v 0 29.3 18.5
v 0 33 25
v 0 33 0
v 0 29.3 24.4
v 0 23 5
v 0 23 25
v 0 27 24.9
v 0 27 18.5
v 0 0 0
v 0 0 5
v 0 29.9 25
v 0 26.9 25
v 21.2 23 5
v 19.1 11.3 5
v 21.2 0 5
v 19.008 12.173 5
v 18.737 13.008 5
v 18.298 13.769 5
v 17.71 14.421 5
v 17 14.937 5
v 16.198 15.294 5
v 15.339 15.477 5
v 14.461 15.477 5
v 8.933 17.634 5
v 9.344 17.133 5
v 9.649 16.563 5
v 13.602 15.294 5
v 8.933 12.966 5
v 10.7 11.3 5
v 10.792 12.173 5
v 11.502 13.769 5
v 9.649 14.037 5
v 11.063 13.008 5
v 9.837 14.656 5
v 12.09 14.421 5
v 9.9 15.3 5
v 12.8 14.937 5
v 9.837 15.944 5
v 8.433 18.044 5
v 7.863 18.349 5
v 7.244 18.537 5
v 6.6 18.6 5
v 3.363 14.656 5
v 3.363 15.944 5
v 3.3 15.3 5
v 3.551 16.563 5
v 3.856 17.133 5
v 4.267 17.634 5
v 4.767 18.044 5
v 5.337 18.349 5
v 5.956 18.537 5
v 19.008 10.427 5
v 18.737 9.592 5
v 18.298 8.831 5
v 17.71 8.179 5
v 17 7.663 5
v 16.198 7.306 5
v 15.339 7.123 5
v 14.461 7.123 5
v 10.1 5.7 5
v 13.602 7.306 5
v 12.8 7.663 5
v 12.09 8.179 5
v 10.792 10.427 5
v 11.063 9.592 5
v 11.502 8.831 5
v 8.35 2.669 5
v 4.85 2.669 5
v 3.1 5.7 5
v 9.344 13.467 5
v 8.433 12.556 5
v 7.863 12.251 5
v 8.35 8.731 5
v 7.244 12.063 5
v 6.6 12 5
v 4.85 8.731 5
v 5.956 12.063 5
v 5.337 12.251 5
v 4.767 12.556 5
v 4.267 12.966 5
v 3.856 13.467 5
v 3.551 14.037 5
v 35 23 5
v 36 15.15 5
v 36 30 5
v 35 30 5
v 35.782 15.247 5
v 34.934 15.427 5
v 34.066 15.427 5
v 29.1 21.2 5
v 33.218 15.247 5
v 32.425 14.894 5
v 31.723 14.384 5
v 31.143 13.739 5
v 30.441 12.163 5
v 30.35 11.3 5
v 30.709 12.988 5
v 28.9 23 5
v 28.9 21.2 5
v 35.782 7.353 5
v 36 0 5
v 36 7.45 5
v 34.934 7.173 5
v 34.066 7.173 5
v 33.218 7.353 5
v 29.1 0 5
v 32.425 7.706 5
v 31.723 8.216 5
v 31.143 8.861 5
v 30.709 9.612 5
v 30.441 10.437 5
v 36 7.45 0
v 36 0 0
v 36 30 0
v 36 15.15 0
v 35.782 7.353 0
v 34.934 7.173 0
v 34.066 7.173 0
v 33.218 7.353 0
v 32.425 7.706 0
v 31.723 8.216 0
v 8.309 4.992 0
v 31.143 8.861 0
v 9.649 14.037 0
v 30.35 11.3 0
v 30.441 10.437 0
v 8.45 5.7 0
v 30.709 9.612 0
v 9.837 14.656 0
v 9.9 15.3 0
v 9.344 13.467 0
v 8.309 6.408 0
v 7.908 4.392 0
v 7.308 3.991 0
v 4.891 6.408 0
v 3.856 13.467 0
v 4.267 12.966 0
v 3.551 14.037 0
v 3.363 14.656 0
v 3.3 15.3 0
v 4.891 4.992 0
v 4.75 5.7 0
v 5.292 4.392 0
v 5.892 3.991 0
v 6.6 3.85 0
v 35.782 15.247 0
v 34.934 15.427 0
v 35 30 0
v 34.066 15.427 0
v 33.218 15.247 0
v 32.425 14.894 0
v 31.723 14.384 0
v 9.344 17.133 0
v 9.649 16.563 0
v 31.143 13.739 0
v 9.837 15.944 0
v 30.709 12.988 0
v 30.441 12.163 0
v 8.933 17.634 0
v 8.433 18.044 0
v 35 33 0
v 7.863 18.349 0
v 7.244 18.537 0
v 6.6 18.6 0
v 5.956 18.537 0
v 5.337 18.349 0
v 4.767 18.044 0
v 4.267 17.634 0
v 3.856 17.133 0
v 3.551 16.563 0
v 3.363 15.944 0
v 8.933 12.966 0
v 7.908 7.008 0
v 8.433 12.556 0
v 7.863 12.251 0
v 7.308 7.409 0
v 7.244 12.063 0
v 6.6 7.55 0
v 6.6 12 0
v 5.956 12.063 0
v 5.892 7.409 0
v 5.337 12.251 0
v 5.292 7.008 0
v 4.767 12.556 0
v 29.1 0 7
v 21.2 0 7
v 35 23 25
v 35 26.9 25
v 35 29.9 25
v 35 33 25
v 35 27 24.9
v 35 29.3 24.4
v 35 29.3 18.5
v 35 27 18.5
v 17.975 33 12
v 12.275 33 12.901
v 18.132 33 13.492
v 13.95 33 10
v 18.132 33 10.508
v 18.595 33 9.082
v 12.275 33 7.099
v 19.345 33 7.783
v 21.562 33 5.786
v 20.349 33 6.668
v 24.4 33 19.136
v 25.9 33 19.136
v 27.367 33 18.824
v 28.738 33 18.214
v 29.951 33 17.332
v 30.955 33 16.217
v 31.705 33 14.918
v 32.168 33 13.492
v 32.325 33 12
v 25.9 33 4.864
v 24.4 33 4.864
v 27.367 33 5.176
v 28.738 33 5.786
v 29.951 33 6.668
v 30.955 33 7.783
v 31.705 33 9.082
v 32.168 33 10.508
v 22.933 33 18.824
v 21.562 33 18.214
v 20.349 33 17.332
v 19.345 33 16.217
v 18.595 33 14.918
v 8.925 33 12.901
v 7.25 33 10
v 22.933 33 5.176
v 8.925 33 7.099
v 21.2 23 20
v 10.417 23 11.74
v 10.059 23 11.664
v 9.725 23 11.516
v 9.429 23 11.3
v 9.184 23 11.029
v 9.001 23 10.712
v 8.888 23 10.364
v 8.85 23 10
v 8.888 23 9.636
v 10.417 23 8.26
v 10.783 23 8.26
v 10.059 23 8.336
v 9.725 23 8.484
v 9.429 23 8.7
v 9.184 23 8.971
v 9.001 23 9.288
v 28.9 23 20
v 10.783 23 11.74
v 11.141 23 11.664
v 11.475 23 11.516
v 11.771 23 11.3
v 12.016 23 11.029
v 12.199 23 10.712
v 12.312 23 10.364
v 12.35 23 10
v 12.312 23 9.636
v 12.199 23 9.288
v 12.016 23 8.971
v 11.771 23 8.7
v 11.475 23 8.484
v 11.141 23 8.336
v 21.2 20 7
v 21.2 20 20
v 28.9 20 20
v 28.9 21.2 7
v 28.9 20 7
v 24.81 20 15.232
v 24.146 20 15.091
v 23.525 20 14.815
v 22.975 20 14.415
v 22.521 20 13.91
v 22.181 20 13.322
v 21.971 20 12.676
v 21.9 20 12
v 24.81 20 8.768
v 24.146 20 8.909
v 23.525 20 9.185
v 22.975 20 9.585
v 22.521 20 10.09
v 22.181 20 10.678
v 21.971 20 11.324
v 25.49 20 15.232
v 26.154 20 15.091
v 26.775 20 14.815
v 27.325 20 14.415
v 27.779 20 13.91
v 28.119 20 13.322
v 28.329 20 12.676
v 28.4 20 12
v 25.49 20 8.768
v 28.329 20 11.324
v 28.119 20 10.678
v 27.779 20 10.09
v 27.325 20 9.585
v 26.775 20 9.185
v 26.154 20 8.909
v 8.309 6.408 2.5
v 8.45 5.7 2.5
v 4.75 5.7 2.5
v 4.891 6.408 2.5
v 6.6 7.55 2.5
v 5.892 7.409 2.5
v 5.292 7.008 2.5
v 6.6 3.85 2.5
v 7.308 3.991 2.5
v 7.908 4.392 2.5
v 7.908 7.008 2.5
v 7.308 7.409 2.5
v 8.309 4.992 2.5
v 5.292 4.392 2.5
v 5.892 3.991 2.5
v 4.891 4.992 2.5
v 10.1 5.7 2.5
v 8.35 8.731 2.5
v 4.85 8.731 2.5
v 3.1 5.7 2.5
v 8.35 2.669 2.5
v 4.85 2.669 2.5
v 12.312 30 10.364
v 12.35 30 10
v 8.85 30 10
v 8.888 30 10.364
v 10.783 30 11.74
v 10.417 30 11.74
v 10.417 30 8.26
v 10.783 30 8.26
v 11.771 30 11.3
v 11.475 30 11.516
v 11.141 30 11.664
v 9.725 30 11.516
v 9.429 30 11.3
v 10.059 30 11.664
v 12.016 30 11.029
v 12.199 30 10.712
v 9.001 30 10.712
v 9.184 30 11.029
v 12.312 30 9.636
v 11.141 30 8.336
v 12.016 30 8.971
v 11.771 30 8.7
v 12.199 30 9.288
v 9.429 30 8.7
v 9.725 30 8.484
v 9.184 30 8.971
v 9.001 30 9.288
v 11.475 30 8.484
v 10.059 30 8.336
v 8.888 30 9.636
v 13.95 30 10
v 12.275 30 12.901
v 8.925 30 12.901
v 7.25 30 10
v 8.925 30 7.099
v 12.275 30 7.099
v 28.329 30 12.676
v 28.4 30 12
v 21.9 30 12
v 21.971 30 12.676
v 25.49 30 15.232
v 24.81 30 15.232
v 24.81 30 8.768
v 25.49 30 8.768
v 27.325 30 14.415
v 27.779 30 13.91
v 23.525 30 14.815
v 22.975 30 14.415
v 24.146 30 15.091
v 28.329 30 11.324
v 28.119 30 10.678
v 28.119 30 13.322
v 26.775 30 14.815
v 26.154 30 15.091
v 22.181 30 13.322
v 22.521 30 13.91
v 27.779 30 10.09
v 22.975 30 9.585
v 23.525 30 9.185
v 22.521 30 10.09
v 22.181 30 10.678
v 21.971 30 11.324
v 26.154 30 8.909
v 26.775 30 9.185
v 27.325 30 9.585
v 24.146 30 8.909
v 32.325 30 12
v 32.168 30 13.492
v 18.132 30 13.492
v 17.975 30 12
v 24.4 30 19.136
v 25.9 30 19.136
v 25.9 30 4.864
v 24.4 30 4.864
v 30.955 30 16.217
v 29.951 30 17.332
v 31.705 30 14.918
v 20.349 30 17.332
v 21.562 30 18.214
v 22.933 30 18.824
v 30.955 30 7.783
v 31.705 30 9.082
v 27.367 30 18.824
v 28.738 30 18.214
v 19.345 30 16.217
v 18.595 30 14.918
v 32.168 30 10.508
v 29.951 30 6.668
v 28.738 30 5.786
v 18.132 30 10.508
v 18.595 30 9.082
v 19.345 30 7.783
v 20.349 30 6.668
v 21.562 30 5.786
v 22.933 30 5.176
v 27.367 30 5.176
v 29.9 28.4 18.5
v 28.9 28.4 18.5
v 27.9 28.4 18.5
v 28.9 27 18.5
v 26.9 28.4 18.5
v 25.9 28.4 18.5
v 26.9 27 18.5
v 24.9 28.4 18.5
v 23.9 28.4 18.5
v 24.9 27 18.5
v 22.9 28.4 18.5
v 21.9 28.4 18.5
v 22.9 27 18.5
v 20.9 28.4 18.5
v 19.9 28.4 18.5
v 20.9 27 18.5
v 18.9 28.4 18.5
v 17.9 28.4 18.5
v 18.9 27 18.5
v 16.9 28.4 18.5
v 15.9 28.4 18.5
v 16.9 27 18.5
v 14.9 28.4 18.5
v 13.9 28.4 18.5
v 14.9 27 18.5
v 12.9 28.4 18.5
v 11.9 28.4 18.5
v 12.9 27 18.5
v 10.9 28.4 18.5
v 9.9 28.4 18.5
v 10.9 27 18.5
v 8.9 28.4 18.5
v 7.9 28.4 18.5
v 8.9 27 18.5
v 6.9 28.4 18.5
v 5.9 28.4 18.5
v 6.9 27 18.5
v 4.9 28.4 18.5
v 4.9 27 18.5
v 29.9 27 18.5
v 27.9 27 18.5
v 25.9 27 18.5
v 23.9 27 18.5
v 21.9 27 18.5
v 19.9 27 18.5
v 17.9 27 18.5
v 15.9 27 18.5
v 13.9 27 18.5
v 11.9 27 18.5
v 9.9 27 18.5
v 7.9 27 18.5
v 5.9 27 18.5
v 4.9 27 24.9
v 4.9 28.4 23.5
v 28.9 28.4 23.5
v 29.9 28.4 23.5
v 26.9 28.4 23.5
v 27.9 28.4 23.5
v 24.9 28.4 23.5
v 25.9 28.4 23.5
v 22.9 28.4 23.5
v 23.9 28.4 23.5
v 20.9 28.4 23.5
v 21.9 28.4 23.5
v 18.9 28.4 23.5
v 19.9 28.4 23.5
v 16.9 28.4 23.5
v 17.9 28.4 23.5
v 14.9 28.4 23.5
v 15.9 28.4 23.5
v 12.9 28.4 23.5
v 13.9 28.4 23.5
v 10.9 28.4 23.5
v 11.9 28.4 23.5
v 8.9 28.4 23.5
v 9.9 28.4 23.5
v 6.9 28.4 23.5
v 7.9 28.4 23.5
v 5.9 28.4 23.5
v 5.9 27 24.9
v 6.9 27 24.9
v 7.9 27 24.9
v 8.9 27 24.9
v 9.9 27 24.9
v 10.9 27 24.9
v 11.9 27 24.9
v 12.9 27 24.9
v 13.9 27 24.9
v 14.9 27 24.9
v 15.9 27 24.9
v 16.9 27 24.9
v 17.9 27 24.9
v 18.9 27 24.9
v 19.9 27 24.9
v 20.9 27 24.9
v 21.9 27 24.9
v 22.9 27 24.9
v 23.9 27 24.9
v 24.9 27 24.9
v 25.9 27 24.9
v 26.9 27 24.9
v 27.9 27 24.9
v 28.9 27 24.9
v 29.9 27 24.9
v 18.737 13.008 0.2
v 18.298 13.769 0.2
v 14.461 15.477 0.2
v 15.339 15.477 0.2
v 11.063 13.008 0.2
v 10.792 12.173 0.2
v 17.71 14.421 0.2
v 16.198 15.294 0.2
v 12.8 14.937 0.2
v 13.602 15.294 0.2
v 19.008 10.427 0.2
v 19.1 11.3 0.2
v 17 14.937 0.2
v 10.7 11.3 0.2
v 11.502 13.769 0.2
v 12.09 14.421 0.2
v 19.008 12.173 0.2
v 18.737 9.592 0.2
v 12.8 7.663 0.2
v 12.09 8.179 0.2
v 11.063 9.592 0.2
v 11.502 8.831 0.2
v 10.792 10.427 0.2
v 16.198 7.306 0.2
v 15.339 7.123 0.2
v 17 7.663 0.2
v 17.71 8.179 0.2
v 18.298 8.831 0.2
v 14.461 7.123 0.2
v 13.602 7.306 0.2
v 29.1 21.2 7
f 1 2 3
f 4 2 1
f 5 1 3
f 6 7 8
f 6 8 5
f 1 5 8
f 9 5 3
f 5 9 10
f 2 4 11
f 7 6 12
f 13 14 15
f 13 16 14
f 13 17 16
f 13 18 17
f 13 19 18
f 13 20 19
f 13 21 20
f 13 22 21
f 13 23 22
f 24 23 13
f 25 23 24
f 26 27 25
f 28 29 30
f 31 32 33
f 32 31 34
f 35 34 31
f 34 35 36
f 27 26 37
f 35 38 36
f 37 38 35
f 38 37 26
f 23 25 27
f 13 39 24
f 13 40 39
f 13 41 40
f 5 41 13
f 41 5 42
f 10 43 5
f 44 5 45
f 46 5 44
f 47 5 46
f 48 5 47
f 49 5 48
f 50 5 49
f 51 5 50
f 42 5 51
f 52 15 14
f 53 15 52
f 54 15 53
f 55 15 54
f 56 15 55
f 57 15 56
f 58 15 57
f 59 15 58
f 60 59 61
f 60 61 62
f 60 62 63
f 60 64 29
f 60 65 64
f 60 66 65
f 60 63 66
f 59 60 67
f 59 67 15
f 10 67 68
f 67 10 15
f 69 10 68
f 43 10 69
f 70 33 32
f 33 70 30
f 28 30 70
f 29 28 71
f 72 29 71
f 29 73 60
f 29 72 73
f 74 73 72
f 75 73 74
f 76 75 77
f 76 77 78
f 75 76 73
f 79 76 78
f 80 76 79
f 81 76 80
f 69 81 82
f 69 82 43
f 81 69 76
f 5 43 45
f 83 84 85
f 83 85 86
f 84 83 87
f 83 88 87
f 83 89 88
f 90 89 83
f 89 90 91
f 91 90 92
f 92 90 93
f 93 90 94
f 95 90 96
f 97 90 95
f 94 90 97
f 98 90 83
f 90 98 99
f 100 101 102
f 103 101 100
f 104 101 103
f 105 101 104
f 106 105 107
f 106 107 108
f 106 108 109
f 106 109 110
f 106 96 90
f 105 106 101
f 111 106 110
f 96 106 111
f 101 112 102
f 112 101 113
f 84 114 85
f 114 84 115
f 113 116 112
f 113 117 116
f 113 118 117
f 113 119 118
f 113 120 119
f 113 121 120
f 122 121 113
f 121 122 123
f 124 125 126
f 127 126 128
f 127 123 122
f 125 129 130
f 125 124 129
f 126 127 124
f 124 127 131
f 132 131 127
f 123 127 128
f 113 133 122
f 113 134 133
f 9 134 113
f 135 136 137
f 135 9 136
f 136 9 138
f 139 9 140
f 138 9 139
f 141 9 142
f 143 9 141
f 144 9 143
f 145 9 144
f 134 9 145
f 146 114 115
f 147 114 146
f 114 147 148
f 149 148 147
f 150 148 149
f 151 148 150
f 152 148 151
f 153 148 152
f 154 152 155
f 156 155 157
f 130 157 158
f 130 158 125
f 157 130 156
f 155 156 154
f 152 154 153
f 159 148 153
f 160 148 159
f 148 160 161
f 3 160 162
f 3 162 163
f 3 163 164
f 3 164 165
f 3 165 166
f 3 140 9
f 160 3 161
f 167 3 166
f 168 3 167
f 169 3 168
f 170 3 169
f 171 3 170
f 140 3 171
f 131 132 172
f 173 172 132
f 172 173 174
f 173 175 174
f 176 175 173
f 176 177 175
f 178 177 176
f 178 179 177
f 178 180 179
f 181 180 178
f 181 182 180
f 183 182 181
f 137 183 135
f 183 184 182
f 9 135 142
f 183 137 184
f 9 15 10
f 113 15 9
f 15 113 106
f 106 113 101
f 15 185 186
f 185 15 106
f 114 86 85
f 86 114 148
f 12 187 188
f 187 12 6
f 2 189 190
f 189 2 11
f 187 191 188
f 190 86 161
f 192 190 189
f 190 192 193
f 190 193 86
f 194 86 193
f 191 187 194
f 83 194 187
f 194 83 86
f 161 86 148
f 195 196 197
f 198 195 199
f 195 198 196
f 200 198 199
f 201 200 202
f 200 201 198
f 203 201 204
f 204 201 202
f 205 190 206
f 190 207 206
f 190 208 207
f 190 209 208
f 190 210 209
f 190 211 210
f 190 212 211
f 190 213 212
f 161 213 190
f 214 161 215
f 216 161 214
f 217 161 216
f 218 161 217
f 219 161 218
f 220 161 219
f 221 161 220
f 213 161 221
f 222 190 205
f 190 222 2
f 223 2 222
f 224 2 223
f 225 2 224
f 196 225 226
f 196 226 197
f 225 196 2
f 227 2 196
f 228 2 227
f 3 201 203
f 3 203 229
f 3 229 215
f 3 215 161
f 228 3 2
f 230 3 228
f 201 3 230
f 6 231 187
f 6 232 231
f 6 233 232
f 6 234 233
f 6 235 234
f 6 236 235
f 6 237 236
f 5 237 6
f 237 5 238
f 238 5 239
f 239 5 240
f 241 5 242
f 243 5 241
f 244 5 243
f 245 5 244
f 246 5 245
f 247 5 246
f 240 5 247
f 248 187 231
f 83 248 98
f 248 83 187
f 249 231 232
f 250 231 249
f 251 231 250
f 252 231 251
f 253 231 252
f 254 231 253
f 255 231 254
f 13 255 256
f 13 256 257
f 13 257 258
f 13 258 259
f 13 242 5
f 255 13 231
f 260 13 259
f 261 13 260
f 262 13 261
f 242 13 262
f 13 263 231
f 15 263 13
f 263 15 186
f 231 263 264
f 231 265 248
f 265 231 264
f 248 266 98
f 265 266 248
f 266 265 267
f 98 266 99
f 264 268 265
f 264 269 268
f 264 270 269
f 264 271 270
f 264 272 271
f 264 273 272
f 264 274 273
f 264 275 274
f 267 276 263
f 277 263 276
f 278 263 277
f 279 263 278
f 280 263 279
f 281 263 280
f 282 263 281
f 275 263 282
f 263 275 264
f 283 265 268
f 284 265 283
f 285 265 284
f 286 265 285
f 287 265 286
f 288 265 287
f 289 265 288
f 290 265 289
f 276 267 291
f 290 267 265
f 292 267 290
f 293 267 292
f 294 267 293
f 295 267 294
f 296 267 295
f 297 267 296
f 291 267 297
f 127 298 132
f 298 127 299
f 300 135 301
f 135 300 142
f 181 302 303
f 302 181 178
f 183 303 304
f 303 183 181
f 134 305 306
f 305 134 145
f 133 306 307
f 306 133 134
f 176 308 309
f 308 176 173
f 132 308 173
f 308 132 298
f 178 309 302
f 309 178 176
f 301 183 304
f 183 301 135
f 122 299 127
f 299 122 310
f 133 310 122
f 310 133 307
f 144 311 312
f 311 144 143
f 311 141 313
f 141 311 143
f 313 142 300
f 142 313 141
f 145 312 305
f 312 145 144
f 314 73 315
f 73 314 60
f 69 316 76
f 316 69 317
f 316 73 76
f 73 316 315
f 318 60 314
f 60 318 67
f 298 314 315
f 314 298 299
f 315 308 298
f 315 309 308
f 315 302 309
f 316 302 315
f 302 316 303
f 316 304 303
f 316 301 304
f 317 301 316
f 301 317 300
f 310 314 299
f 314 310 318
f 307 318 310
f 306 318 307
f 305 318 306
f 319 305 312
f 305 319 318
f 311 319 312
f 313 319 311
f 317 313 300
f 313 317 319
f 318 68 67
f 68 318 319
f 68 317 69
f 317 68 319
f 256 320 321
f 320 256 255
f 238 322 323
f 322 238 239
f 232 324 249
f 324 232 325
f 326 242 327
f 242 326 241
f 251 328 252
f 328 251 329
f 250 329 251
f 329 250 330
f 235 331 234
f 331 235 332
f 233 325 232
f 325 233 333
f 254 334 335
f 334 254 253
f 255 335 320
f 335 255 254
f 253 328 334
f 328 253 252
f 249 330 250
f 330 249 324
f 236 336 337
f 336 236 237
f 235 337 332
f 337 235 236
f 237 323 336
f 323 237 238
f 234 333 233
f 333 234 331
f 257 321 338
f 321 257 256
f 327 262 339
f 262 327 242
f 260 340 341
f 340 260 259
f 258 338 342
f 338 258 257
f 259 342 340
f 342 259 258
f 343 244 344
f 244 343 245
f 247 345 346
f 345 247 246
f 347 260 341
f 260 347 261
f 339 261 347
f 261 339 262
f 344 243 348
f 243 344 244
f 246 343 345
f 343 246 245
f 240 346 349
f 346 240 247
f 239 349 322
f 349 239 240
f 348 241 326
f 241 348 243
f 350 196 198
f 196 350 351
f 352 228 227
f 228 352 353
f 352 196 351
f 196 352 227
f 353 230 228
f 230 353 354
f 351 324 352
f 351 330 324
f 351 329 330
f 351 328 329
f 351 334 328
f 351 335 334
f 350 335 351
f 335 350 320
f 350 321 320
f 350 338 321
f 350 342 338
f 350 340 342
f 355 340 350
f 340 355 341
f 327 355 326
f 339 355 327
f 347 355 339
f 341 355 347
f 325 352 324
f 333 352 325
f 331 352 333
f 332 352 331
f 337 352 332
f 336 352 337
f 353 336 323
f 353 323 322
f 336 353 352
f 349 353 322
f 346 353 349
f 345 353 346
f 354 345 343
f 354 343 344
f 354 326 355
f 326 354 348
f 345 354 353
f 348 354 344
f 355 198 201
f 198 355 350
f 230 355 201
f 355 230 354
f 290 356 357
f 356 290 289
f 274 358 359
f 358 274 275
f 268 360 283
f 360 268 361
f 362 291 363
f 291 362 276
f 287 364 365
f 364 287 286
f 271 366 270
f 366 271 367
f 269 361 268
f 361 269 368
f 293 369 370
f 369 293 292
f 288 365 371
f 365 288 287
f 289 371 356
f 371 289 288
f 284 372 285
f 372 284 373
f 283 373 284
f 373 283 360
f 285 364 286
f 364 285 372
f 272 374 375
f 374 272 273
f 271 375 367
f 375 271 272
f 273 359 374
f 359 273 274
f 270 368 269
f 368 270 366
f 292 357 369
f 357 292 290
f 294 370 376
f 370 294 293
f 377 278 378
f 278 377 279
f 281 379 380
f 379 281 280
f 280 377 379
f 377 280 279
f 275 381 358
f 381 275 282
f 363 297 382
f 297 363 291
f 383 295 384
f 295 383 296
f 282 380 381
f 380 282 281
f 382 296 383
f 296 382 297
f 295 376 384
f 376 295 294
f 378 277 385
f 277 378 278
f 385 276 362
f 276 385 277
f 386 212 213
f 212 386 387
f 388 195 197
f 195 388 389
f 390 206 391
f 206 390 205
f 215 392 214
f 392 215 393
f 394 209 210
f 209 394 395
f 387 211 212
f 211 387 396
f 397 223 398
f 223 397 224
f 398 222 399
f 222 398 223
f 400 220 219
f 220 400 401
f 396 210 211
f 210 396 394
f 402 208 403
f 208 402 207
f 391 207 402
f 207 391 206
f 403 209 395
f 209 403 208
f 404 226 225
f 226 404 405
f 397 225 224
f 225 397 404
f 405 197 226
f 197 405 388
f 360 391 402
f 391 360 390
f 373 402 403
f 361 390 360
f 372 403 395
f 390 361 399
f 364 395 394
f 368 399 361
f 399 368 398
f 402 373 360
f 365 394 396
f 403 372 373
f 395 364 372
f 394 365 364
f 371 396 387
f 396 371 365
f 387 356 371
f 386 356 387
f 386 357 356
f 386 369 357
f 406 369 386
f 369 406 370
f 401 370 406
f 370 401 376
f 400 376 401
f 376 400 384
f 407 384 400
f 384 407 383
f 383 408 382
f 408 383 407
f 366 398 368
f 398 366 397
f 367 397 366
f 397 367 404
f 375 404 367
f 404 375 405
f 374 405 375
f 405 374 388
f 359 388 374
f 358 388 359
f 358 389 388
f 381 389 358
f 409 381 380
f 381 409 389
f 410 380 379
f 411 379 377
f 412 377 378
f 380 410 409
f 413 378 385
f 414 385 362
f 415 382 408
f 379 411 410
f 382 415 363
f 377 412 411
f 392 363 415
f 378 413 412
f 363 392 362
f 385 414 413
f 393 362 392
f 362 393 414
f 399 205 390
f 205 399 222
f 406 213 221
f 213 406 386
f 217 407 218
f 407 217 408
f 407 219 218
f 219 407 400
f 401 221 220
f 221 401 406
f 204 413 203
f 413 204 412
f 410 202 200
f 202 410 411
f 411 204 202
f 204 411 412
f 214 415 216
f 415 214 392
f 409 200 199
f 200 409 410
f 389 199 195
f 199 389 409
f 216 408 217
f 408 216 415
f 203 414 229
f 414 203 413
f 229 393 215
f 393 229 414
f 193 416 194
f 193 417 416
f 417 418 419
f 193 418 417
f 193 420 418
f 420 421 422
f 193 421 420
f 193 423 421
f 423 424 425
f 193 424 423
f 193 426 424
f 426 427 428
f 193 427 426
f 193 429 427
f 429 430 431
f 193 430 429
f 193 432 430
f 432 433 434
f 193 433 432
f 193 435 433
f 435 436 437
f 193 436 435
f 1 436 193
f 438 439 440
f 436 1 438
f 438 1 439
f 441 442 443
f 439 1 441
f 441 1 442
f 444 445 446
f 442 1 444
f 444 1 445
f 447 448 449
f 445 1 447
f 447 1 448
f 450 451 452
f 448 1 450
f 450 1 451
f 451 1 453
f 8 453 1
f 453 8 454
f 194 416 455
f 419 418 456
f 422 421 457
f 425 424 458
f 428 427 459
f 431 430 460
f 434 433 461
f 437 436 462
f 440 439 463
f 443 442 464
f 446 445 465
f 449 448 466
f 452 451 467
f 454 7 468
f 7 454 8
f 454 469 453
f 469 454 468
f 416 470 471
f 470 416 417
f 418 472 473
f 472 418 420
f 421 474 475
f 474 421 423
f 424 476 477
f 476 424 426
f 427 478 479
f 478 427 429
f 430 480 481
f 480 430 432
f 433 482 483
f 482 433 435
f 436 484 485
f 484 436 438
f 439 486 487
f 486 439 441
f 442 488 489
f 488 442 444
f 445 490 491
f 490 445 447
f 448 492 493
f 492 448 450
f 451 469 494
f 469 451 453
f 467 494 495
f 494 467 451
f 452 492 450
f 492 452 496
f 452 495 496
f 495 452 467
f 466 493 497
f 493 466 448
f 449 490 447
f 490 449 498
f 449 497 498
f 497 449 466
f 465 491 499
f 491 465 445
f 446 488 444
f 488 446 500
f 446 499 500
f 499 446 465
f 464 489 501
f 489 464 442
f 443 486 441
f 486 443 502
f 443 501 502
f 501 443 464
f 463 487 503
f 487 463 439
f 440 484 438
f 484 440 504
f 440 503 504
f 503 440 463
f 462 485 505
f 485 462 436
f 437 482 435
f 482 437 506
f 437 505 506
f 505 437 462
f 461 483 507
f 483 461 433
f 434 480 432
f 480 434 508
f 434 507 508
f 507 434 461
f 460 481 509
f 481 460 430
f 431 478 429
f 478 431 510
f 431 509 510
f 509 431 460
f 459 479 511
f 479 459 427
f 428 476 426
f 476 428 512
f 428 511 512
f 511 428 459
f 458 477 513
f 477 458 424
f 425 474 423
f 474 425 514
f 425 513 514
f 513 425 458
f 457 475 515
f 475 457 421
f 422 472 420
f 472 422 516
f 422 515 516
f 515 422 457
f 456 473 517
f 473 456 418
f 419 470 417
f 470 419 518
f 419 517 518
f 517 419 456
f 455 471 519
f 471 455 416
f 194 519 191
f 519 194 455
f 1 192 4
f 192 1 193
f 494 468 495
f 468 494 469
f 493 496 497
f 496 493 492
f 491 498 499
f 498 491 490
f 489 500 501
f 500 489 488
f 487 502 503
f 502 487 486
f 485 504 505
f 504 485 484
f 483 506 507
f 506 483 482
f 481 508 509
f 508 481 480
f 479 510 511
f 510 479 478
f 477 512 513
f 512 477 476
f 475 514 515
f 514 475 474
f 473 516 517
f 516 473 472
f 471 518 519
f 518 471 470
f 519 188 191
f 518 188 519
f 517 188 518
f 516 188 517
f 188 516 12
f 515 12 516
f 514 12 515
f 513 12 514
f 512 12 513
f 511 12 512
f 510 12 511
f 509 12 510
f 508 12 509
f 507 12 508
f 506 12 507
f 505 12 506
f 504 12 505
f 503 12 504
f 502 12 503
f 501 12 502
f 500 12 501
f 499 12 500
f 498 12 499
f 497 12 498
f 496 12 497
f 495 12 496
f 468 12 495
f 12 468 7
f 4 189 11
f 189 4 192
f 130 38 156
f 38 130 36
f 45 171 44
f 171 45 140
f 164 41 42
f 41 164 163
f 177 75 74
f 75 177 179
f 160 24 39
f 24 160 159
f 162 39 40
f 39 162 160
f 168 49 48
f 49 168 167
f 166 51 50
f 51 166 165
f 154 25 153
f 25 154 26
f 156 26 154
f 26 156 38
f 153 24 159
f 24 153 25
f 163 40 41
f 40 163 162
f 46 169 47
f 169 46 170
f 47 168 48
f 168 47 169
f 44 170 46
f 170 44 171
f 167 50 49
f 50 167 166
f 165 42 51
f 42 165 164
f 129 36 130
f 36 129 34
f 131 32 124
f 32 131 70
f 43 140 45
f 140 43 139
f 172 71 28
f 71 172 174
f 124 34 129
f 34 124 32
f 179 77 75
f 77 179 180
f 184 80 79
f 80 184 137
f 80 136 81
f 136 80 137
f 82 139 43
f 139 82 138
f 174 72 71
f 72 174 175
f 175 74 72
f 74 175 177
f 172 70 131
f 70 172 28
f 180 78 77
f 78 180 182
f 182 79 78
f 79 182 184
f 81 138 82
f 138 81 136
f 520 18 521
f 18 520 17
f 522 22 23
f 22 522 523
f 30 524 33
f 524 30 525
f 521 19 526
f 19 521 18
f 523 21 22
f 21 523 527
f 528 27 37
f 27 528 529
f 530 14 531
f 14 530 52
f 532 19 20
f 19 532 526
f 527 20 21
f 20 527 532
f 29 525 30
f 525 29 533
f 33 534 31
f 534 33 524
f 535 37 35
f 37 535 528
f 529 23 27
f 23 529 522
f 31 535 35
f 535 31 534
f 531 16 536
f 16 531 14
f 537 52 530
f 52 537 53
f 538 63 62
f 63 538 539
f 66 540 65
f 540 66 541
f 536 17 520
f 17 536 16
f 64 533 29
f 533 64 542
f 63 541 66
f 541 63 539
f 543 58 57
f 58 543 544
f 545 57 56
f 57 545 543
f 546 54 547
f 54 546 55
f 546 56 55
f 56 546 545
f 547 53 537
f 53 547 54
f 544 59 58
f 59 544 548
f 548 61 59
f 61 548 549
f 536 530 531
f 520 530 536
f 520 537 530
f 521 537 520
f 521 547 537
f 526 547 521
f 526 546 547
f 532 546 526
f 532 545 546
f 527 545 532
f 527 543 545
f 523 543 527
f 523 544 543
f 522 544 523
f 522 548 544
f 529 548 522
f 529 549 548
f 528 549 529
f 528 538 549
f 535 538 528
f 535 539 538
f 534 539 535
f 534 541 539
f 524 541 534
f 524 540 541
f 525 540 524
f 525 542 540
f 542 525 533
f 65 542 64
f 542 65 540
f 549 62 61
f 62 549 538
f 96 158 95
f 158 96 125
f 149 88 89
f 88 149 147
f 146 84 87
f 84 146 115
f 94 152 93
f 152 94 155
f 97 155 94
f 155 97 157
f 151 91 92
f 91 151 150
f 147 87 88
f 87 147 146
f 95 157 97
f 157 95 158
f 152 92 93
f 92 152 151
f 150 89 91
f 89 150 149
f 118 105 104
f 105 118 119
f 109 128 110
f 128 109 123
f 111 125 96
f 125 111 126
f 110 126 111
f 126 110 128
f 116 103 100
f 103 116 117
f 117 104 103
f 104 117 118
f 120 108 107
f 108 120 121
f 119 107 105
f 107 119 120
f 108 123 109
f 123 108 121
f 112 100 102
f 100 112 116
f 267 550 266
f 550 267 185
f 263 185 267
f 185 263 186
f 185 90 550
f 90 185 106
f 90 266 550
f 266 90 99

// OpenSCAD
// file: configuration.scad
// Layer high for the printing [mm]
layer_height = 0.20; //Slic3r->Print Settings->Layers and perimeters->Layer height

// Spare for the screws heads [mm]
spare = 0.75;
// M6 screw diameter [mm]
M6_head_diameter = 13.6+spare;
//M6_head_diameter = 10.6+spare;
//M6_head_diameter = 12+spare;

// M6 head high (for hiding it) [mm]
//M6_head_height = 4;
M6_head_height = 3.6;
//M6_head_height = 4.5;

// Screws and rods diameters
M8_smooth_rod_diameter = 8.3;
M8_smooth_rod_diameter_catch = 8.4;
// Prumer 8mm tyce
rod_8mm_d = 8.2; //pro dil z-top
M6_diameter = 6.6;
M6_dia=M6_diameter; //pro dil z-top
M6_diamater_horizontal = 6.5;
M3_diameter = 3.7;
M3_diameter_horizontal = 3.5;

//matice trapézové tyče
TRAP_diameter_externa=22; //průmer vnější 


// Nuts diameters
M3_nut_diameter = 7.0;
M3_nut_diameter_horizontal = 6.7;

// ALU profile parameters
ALU_cut_width = 7.9;
ALU_cut_width_horizontal = 7.7;

// Sirka matky do profilu (pokud neni pouzita, tak 0)
//profile_nut_width = 9.5;
profile_nut_width = 0; //pro z-top

// Motors length/depth (for axes Z and Y)
//SX17-1003LQFE (recommended for the Z axis)
motor_length = 29.5;
//SX17-1003 (recommended for the Z axis)
//motor_length = 34;
//SX17-1005
//motor_length = 40;
//SX17-0905 - this motor is too high - the Z end stop holder has to be adjusted
//motor_length = 48;

// Extrusion width [mm]
extrusion_width = 0.66; //Slic3r->Print Settings->Advanced->Default extrusion width

/// Belt type ******************************************************

// GT2 
belt_tooth_distance = 2;
belt_tooth_ratio = 0.5;
belt_tooth_height = 1.4;
belt_thickness = 2.3;

/*
// T2.5
belt_tooth_distance = 2.5;
belt_tooth_ratio = 0.68;
*/
// main file
include <./configuration.scad>

difference(){
	union(){
		cube([36,30,5]);
		translate([0,23,0])cube([35,10,25]);
		translate([M6_diameter*2+8,20,0])cube([ALU_cut_width_horizontal,11,20]);
	}
	translate([M6_diameter,M6_diameter+M3_diameter+5,-1])cylinder(r=M6_diameter/2,h=7,$fn=32);
	translate([M6_diameter,M3_diameter+2,-1]){
		cylinder(r=M3_diameter/2,h=7,$fn=16);	
		translate([0,0,3.5])cylinder(r=M3_nut_diameter/2,h=2.6,$fn=6);
	}
	translate([M6_diameter+M8_smooth_rod_diameter,M8_smooth_rod_diameter+3,layer_height])cylinder(h=7,r=M8_smooth_rod_diameter_catch/2,$fn = 30);
	translate([34.5,M8_smooth_rod_diameter+3,-1])cylinder(h=7,r=M8_smooth_rod_diameter/2,$fn = 30);
	
	translate([M6_diameter+4,34,10]) 
	rotate([90,0,0]){
		cylinder(h = 15, r=M3_diameter_horizontal/2, $fn=30);
		cylinder(h = 4, r=M3_nut_diameter_horizontal/2, $fn=6);
	}

	translate([M6_diameter*2+8+ALU_cut_width/2,34,12]) 
	rotate([90,0,0]){
		cylinder(r = M6_diamater_horizontal/2, h = 15, $fn = 30);
		cylinder(r = M6_head_diameter/2, h = 4, $fn = 30);
	}
	
	translate([-1,27,18.5])belt_holder_beltcut();
}

translate([M6_diameter*2+8,0,0])cube([ALU_cut_width,M6_diameter*2+8,7]);

module belt_holder_beltcut(){
 echo(belt_tooth_ratio*belt_tooth_distance);
 position_tweak=-1.1;
 // Belt slit
 translate([0,belt_tooth_height,0]) cube([67, belt_thickness - belt_tooth_height, 15]);
 // Smooth insert cutout
 translate([0,belt_tooth_height,5]) rotate([45,0,0]) cube([67,15,15]);
 // belt inlet cutouts
 translate([0,0,0]) cube([5,belt_thickness,15]);
 translate([31,0,0]) cube([10,belt_thickness,15]);
 // Individual teeth
 for ( i = [0 : 23] ){
 	translate([0+i*belt_tooth_distance+position_tweak,0,0]) cube([belt_tooth_ratio*belt_tooth_distance, belt_tooth_height, 15]);
 }
}
